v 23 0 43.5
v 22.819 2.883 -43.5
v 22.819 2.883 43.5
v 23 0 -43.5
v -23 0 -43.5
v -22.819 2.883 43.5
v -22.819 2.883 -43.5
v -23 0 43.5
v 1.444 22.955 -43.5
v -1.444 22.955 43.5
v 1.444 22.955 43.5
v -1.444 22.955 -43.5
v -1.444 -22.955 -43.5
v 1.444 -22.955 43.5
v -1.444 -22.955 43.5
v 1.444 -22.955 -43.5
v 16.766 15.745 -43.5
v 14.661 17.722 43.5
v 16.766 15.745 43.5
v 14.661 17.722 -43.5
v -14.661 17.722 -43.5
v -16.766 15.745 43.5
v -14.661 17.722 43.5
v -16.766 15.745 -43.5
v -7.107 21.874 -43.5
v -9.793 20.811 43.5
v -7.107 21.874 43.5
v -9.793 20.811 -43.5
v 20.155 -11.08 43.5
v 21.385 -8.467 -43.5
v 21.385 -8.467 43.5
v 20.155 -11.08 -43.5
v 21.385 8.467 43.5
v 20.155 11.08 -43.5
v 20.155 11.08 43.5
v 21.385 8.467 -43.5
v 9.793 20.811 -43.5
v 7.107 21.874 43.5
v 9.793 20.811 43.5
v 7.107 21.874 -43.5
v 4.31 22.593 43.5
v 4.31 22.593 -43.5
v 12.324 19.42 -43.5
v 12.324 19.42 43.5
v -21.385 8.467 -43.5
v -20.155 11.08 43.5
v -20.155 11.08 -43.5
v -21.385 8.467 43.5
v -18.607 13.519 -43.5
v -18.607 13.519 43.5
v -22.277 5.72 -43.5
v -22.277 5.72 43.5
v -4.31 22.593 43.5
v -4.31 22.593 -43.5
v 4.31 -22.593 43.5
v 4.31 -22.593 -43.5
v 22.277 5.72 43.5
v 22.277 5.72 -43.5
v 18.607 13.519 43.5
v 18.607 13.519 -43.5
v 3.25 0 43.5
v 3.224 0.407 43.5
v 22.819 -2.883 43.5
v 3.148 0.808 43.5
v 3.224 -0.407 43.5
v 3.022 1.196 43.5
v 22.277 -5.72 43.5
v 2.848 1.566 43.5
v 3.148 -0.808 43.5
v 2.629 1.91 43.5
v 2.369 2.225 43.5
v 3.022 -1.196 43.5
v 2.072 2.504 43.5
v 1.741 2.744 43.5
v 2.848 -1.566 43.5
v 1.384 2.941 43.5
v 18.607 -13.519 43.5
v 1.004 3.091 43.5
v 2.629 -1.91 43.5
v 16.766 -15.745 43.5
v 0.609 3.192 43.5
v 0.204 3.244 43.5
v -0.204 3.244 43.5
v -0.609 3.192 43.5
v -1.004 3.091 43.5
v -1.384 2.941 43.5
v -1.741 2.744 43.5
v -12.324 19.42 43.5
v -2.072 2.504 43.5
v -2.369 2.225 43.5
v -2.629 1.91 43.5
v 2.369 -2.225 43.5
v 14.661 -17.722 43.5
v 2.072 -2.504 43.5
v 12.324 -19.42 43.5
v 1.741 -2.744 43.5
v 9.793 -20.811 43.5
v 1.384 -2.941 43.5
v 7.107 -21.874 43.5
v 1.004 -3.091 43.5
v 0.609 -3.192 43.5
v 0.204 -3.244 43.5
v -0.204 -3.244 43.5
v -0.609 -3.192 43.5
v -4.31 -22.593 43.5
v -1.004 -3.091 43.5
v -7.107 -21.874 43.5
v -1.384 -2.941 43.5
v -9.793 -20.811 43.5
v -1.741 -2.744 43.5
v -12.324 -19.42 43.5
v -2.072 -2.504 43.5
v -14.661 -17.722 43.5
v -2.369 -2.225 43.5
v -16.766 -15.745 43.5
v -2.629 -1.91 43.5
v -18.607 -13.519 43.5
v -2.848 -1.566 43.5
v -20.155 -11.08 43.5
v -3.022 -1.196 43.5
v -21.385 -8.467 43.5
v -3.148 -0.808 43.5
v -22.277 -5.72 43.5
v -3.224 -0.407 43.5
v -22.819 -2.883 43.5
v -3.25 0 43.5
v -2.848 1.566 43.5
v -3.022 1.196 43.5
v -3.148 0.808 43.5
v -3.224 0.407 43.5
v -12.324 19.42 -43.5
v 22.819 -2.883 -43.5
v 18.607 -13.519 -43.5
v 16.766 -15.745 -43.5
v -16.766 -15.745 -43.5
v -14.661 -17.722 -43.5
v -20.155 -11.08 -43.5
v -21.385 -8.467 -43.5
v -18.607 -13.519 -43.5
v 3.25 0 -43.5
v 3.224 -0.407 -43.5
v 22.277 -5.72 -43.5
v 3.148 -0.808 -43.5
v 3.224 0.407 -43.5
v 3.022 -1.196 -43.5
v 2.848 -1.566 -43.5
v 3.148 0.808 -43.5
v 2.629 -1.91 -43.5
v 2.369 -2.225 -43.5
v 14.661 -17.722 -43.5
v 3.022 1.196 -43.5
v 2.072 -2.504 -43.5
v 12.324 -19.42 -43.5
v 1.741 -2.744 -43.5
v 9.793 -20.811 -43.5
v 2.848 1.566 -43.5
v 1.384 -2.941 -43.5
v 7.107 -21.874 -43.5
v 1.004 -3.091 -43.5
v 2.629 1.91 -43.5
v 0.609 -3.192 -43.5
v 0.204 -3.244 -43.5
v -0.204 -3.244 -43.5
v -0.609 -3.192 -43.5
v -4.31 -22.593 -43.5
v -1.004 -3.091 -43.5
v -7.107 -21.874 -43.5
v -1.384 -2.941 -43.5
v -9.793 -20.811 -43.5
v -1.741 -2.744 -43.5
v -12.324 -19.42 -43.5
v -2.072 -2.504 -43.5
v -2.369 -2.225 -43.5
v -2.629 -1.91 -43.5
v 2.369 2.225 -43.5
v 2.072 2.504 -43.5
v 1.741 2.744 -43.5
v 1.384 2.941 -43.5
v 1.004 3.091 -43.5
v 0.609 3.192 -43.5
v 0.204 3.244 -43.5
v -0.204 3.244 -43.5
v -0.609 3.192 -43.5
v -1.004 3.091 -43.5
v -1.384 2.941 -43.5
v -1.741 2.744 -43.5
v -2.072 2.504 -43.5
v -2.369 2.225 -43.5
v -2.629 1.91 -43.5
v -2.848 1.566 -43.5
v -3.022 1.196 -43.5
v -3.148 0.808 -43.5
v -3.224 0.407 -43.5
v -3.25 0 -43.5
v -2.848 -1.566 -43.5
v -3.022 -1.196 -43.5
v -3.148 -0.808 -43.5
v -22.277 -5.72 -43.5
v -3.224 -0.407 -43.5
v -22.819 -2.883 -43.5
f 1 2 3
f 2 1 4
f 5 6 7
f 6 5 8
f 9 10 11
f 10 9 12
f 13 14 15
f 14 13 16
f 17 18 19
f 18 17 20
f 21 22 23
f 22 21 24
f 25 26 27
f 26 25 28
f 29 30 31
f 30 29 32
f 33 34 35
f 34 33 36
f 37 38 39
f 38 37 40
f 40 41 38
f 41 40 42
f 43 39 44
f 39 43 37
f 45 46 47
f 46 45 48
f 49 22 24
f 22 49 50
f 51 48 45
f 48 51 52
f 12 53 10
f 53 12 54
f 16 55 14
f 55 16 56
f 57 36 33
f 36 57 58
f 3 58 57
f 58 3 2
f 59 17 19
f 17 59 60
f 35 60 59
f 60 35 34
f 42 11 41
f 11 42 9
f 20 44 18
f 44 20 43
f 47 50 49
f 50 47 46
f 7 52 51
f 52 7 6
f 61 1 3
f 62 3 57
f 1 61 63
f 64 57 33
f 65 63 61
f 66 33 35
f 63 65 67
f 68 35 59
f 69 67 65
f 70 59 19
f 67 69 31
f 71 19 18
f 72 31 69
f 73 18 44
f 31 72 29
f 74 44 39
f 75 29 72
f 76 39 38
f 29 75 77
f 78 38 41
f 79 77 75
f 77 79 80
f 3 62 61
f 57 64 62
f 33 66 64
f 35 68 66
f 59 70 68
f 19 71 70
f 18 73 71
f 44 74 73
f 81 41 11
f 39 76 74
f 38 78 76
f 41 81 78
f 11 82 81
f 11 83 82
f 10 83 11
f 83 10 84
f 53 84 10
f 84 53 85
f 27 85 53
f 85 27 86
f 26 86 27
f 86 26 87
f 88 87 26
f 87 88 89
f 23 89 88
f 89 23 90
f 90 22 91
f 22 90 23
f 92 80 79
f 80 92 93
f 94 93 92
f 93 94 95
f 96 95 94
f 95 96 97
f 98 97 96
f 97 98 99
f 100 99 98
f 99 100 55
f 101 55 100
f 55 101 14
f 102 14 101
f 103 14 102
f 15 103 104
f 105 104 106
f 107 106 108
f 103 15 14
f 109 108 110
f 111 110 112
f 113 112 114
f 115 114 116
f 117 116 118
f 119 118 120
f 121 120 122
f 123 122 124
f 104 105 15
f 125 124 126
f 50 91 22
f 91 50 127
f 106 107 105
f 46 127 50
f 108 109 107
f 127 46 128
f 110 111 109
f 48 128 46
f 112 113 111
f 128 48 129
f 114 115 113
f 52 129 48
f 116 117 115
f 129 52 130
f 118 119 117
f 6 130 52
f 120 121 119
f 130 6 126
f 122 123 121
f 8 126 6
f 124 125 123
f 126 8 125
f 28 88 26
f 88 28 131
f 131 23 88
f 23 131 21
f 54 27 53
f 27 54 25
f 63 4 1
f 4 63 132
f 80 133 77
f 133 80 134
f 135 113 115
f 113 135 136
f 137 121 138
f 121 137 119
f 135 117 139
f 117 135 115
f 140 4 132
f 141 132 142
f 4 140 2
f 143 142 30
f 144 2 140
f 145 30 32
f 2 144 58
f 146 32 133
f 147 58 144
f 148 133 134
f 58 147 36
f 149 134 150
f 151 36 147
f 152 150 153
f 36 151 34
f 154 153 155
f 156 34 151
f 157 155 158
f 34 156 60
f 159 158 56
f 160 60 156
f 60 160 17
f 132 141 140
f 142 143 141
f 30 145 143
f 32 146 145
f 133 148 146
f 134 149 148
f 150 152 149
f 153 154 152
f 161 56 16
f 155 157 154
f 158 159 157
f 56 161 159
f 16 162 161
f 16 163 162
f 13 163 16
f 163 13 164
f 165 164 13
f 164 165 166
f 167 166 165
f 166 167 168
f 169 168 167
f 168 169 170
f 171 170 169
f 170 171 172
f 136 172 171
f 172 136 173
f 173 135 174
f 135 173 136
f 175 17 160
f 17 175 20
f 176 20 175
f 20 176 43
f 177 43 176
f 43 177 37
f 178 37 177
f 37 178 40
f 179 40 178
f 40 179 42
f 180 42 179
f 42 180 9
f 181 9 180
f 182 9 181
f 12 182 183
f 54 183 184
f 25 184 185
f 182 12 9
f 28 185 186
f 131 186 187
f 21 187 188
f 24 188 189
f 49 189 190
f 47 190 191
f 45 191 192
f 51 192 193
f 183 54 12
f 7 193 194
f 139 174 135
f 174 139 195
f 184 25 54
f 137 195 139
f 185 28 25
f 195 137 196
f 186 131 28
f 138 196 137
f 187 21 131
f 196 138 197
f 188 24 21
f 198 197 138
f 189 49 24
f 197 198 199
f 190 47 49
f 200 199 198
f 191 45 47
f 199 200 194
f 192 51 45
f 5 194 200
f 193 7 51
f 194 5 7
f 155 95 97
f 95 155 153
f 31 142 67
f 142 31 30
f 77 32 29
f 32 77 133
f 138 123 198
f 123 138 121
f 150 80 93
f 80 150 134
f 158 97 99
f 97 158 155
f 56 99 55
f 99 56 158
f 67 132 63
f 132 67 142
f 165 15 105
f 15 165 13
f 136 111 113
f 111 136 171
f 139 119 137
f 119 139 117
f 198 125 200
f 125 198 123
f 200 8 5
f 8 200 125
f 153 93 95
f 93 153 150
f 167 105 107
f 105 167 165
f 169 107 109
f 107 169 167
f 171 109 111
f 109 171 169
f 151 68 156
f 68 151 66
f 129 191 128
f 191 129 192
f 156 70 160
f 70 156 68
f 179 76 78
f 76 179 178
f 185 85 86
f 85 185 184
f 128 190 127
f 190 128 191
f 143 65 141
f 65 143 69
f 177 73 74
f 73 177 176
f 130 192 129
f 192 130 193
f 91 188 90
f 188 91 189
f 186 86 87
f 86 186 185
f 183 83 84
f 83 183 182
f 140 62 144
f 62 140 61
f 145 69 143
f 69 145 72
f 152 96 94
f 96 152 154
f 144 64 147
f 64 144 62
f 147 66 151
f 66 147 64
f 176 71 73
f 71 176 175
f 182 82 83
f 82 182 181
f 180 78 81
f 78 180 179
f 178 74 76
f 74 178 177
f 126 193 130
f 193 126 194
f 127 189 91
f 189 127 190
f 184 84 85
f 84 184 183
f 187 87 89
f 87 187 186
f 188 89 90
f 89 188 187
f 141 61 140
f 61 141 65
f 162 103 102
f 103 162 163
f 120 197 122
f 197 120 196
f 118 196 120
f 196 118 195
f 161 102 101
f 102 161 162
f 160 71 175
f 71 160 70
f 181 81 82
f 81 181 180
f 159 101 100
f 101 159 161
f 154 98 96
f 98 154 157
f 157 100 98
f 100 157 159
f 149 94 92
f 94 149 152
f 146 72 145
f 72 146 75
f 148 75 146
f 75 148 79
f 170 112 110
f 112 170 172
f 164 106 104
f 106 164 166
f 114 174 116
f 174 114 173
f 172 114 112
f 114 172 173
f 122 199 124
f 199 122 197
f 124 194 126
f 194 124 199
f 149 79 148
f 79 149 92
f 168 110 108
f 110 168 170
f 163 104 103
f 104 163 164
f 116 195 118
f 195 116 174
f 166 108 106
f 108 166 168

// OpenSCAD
$fn = 50;


difference() {
	union() {
		translate(v = [0, 0, -43.5000000000]) {
			cylinder(h = 87, r = 23.0000000000);
		}
	}
	union() {
		translate(v = [0, 0, -100.0000000000]) {
			cylinder(h = 200, r = 3.2500000000);
		}
	}
}
